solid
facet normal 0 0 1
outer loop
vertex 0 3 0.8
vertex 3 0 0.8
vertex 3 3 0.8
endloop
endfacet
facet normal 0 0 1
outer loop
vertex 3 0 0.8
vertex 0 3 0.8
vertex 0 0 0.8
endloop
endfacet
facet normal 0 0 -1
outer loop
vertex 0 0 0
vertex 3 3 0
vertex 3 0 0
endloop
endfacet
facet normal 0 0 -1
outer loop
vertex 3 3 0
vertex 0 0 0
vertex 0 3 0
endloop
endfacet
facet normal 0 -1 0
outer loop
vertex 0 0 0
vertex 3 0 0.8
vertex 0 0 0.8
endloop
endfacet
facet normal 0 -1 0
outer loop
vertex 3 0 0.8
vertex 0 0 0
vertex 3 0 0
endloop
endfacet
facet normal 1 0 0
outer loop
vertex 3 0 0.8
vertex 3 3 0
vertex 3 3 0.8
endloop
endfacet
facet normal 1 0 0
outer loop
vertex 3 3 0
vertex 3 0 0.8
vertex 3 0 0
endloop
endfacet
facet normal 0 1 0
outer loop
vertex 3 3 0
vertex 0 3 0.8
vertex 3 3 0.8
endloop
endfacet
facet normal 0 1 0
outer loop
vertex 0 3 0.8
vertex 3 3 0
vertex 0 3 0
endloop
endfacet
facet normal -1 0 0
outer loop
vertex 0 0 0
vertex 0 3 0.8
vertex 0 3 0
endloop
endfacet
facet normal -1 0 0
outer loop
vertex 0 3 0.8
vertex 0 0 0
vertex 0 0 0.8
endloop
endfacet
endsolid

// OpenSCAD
/* Warning, this is a very basic generator with a lot of approximation 
input data : [WDFN, URX, 3x3x0.8mm, 10, , A, C04-00292A]
generated by com.zoubworld.electronics.cad.model3d.Basic
Date : Sun Feb 15 10:50:48 CET 2026
*/

//body
color("black")
translate([0,0,0])
cube([3.0,3.0,0.8], center=false);
